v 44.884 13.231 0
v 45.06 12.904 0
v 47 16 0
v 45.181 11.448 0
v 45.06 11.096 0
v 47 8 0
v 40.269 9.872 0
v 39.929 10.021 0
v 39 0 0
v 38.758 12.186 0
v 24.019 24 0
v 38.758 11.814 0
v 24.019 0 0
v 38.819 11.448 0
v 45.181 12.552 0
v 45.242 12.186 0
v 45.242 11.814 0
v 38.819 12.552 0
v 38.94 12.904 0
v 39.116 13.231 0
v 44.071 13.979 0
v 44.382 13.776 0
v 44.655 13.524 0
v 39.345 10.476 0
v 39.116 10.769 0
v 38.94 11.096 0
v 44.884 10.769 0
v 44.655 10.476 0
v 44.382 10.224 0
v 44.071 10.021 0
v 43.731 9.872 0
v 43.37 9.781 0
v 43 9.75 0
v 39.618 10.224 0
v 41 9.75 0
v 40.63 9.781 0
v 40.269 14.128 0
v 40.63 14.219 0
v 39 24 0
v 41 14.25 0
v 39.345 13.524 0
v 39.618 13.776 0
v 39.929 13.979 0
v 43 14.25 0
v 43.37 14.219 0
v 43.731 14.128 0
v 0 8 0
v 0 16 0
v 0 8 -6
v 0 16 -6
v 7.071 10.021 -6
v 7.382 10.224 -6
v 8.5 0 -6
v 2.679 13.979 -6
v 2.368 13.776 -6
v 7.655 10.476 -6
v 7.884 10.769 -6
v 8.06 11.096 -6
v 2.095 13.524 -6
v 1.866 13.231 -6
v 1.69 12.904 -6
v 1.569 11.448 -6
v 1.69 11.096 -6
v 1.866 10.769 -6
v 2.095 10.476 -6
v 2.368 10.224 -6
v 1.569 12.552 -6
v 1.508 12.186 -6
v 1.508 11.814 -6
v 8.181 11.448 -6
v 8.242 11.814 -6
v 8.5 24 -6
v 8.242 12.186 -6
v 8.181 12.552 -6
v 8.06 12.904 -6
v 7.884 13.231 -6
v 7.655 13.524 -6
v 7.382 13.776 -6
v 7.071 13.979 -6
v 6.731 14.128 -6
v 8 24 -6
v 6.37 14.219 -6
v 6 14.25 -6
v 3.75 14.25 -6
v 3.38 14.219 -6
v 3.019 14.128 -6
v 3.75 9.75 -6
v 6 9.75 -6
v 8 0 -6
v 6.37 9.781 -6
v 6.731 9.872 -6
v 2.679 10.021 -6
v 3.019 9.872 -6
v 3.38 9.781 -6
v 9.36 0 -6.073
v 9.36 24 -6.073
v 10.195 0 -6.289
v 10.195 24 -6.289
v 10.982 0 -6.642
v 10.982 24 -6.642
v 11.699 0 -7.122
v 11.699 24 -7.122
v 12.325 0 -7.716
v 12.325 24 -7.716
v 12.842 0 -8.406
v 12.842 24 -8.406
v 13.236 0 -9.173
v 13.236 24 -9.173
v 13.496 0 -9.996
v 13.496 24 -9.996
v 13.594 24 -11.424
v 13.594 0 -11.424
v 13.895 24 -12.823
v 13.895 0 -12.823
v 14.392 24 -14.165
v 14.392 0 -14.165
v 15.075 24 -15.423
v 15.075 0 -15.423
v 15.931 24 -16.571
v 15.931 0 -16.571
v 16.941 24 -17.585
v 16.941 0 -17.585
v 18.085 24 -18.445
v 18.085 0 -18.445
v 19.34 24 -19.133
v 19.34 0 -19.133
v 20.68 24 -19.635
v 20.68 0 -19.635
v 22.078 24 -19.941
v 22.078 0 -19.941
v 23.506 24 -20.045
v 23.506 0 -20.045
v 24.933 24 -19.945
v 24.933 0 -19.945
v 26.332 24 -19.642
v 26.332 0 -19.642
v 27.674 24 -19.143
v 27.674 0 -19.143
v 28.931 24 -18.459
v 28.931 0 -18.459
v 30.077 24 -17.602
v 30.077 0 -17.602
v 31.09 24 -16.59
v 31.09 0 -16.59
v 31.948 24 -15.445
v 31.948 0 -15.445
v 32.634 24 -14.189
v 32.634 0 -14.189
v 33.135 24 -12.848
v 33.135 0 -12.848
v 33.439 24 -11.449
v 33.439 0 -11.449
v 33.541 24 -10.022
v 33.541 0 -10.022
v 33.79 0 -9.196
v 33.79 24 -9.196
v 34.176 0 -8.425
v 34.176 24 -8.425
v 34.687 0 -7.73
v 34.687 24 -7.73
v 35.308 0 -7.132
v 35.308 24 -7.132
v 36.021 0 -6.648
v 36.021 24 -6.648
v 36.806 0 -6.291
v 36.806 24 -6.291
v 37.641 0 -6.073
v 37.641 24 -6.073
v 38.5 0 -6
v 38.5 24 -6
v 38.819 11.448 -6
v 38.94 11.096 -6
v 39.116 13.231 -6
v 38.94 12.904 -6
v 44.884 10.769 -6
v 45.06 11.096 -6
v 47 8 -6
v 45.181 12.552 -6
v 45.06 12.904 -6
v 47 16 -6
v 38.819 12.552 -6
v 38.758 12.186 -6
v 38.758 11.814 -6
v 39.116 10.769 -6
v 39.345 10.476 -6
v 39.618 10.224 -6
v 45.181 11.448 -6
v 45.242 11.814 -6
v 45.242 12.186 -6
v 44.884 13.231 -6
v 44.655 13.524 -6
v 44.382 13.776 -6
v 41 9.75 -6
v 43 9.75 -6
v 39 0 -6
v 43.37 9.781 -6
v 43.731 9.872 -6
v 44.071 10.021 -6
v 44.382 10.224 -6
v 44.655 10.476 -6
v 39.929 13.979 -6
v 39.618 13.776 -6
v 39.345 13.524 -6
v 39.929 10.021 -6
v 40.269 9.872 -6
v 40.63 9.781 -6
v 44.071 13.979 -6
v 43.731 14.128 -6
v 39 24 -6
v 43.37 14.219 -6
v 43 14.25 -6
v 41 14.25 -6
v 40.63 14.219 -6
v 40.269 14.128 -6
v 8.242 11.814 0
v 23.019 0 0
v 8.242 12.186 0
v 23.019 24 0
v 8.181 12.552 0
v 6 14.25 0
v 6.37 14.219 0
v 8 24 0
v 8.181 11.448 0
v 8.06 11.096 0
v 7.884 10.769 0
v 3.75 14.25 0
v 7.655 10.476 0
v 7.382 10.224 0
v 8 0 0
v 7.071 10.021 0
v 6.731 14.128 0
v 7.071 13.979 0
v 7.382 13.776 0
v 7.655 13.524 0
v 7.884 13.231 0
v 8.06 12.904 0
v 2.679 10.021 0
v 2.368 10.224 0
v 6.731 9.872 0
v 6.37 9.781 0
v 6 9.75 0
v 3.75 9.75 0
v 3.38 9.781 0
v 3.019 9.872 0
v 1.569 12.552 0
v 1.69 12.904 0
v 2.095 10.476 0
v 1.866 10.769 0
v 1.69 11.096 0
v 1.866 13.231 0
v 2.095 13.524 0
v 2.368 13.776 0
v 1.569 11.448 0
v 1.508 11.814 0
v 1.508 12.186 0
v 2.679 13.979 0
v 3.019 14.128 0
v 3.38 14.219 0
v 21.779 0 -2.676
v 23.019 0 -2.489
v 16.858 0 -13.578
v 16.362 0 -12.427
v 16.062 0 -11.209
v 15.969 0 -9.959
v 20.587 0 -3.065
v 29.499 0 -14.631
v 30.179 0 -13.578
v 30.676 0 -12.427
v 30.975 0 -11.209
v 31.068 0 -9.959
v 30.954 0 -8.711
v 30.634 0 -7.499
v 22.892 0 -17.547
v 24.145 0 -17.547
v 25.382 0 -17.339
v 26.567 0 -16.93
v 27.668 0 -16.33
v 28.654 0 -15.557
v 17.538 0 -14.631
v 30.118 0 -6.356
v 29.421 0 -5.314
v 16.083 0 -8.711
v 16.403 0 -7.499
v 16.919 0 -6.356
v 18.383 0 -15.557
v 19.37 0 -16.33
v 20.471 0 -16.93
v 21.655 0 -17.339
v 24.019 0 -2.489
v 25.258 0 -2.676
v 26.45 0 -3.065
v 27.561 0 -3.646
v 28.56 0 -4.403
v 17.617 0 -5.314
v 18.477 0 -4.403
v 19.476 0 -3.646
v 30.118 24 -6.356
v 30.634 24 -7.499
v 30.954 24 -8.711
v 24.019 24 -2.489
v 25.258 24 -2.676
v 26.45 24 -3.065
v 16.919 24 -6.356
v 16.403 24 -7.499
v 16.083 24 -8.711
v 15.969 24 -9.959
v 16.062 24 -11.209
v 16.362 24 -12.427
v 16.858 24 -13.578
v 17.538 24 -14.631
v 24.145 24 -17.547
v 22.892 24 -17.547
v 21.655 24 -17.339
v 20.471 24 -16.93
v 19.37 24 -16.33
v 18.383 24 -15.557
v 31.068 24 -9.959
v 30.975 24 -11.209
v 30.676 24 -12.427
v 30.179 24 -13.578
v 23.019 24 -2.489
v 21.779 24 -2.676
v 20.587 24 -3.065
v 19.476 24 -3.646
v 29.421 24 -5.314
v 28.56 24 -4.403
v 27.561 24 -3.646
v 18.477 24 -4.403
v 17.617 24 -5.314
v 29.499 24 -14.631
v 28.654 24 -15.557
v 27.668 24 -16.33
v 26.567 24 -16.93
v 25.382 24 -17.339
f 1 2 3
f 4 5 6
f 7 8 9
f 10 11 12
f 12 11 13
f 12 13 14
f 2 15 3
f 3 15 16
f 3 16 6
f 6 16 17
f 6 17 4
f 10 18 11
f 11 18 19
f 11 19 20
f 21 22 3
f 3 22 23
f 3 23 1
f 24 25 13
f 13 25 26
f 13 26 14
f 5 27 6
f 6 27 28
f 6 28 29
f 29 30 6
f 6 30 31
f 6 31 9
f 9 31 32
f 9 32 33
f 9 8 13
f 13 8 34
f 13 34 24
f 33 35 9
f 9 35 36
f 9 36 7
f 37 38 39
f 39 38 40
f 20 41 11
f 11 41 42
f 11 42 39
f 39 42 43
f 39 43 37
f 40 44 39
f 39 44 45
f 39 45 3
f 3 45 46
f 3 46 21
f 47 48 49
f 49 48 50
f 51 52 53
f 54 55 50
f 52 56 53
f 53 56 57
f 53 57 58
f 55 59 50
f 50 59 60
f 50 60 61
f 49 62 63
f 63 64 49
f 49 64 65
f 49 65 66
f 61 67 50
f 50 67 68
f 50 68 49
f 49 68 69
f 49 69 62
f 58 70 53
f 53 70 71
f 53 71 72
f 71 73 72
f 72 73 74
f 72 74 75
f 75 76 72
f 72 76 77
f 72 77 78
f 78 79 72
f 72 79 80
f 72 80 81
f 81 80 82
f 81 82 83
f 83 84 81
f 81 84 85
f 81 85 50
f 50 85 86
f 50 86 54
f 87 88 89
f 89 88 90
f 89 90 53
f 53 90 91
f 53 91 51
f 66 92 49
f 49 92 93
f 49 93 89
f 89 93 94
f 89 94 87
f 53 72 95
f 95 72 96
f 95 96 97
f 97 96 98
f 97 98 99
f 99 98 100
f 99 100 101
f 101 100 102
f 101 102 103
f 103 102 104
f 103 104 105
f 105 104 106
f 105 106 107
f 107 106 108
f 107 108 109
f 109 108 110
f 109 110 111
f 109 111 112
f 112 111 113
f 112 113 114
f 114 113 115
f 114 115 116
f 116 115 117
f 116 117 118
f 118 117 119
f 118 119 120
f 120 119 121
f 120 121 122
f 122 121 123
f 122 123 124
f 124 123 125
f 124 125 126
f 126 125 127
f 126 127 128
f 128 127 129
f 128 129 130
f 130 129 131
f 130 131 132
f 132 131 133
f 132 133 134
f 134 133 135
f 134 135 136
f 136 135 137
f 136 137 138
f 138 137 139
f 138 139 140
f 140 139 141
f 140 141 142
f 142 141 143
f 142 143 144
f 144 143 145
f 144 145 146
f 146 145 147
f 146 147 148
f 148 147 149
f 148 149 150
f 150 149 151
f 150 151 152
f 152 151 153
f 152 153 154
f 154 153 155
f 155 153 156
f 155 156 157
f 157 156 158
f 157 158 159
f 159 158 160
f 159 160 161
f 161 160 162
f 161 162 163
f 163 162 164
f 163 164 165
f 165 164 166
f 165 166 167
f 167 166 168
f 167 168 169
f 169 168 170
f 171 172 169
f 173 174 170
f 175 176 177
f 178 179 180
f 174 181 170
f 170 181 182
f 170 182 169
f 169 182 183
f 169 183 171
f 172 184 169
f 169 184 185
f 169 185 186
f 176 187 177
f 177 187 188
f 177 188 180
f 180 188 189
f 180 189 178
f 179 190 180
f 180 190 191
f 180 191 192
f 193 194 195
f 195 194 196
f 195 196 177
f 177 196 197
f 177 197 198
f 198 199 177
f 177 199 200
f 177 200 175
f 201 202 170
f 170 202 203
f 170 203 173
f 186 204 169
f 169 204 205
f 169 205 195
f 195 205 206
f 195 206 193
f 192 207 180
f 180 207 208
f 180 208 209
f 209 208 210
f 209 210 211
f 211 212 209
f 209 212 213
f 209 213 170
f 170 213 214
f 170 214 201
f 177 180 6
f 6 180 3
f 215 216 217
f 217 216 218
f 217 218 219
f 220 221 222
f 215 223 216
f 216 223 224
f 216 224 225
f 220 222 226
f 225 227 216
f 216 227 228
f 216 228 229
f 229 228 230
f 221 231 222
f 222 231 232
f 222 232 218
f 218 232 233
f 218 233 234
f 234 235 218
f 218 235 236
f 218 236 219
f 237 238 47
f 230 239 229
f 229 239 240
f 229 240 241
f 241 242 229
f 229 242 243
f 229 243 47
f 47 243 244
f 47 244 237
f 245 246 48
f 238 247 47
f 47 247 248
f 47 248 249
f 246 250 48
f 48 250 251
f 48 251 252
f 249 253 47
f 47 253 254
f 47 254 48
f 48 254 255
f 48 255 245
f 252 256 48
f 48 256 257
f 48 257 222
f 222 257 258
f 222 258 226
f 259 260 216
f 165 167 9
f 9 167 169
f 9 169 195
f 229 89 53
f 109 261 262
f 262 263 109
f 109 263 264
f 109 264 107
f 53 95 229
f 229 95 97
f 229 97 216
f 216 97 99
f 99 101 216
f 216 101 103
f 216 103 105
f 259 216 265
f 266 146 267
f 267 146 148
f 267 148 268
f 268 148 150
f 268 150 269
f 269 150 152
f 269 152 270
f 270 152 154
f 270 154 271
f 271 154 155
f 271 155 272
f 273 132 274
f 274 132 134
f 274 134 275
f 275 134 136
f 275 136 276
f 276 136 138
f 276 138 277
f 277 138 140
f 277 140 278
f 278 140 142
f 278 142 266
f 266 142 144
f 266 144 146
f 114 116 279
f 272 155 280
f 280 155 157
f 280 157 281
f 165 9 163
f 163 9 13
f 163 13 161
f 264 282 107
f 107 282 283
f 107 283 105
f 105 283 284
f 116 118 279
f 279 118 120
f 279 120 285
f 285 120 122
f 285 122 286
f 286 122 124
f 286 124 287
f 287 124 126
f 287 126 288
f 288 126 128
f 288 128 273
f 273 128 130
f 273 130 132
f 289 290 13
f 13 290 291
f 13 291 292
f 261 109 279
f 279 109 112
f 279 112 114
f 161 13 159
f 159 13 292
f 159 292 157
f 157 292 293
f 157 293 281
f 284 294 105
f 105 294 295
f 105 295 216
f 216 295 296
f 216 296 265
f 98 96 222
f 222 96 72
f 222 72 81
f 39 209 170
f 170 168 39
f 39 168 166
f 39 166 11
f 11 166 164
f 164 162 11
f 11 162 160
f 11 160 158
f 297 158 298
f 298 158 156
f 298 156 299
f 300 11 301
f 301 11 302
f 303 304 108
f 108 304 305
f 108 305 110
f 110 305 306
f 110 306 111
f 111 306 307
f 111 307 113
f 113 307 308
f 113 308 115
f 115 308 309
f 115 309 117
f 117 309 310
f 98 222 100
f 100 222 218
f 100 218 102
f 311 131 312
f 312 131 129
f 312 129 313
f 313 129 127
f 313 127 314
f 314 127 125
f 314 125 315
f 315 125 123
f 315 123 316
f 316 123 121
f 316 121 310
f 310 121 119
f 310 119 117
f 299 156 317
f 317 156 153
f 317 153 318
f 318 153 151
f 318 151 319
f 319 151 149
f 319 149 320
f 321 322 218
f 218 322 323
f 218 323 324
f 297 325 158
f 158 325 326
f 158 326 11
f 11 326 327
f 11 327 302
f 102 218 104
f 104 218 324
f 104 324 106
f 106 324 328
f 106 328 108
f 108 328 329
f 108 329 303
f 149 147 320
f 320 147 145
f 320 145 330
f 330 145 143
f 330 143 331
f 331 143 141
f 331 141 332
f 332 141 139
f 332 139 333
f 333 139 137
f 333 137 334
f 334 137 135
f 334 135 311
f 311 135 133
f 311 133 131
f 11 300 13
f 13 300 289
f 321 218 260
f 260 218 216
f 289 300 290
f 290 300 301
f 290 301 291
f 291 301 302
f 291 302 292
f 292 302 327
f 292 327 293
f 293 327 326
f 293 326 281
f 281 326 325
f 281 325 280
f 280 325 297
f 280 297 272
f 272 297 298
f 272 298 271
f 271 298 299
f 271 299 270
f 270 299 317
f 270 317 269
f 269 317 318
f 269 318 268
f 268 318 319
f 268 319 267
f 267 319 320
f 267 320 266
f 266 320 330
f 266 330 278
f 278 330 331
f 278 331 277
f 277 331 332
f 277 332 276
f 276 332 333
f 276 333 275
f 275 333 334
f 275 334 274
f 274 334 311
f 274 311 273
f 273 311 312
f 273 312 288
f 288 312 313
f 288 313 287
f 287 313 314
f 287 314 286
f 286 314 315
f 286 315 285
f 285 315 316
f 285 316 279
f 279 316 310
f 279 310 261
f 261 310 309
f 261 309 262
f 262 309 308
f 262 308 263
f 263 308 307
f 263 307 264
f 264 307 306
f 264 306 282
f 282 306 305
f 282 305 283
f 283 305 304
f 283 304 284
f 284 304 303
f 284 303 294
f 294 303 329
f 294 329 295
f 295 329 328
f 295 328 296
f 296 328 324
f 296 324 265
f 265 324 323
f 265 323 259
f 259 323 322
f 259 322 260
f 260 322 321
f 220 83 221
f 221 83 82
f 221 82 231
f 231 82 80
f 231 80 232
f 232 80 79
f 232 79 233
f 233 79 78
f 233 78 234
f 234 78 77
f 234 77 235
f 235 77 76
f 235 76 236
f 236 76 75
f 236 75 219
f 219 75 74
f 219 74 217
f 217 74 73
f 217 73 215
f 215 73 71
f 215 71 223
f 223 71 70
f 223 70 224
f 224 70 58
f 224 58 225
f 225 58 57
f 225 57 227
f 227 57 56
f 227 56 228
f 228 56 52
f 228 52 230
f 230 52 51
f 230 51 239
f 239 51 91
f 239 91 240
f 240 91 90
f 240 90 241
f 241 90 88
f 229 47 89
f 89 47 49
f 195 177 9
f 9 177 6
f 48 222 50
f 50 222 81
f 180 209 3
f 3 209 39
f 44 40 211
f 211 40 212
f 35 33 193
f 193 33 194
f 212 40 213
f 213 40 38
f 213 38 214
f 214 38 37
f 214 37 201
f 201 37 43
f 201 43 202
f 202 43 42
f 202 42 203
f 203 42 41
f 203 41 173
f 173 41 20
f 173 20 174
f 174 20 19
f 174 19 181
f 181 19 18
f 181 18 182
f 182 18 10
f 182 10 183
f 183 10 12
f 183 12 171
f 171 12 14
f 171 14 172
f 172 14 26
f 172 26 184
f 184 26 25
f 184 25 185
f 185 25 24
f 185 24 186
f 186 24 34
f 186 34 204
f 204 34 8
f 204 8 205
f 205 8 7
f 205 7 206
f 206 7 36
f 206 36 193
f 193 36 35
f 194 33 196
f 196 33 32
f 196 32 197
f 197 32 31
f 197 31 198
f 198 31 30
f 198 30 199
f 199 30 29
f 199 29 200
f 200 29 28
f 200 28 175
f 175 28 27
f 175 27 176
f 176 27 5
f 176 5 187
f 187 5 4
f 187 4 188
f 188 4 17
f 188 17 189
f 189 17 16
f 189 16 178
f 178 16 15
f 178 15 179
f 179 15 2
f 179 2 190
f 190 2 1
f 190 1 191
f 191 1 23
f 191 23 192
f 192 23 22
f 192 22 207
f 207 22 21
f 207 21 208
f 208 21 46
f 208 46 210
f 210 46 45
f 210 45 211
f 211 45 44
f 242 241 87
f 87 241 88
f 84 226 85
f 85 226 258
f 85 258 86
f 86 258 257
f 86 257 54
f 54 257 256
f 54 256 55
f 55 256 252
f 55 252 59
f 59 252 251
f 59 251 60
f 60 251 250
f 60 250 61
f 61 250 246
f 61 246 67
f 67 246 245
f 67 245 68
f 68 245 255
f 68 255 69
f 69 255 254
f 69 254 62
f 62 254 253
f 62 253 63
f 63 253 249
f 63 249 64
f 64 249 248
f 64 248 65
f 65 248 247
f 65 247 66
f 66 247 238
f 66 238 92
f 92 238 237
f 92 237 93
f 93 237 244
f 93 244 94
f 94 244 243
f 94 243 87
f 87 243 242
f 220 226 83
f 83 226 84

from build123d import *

# Parameters (mm, degrees)
BOSS_EXTRUDE1_DEPTH            = 24
CUT_EXTRUDE1_DEPTH             = 25
SKETCH3_W                      = 7.55
SKETCH3_H                      = 24
F_4_5_4_5_DIAMETER_HOLE1_D     = 4.5
F_4_5_4_5_DIAMETER_HOLE1_DEPTH = 6
CHAMFER1_SIZE                  = 8
CUT_EXTRUDE2_DEPTH             = 21.045442769


with BuildPart() as part:
    # Sketch1 → Boss-Extrude1 (new body)
    with BuildSketch(Plane(origin=(0, 24, 0), x_dir=(1, 0, 0), z_dir=(0, 1, 0))):
        with BuildLine():
            Line((0, 0), (47, 0))
            Line((47, 0), (47, 6))
            Line((47, 6), (38.5, 6))
            ThreePointArc((38.5, 6), (35.307693119, 7.131854655), (33.541354656, 10.021831577))
            ThreePointArc((33.541354656, 10.021831577), (23.505747016, 20.045434485), (13.49594739, 9.996059012))
            ThreePointArc((13.49594739, 9.996059012), (11.698748894, 7.121907302), (8.5, 6))
            Line((8.5, 6), (0, 6))
            Line((0, 6), (0, 0))
        make_face()
    extrude(amount=-BOSS_EXTRUDE1_DEPTH)

    # Sketch2 → Cut-Extrude1 (cut, through all)
    with BuildSketch(Plane.XZ):
        with BuildLine():
            Line((24.018633311, 0), (23.018633311, 0))
            Line((23.018633311, 0), (23.018633311, -2.489295869))
            ThreePointArc((23.018633311, -2.489295869), (23.518633311, -2.472721384), (24.018633311, -2.489295869))
            Line((24.018633311, -2.489295869), (24.018633311, 0))
        make_face()
    extrude(amount=-CUT_EXTRUDE1_DEPTH, mode=Mode.SUBTRACT)

    # Sketch3 → Cut-Revolve1 (revolve, cut)
    with BuildSketch(Plane(origin=(0, 0, -10.022721384), x_dir=(-1, 0, 0), z_dir=(0, 0, -1))):
        with Locations((-27.293633311, 12)):
            Rectangle(SKETCH3_W, SKETCH3_H)
    revolve(axis=Axis((23.518633311, 0, -10.022721384), (0, 1, 0)), mode=Mode.SUBTRACT)

    # Ø4.5 (4.5) Diameter Hole1
    with Locations(Plane(origin=(0, 0, -6), x_dir=(-1, 0, 0), z_dir=(0, 0, -1))):
        with Locations((-41.037266621, 12), (-6, 12)):
            Hole(F_4_5_4_5_DIAMETER_HOLE1_D / 2, depth=F_4_5_4_5_DIAMETER_HOLE1_DEPTH)

    # Chamfer1
    chamfer1_edges = [part.edges().sort_by_distance(p)[0] for p in [
        (47, 0, -3),
        (0, 24, -3),
        (0, 0, -3),
        (47, 24, -3),
    ]]
    chamfer(chamfer1_edges, length=CHAMFER1_SIZE)

    # Sketch7 → Cut-Extrude2 (cut, through all)
    with BuildSketch(Plane.XY):
        with BuildLine():
            Line((41, 14.25), (43, 14.25))
            ThreePointArc((43, 14.25), (45.25, 12), (43, 9.75))
            Line((43, 9.75), (41, 9.75))
            ThreePointArc((41, 9.75), (38.75, 12), (41, 14.25))
        make_face()
        with BuildLine():
            Line((6, 9.75), (3.75, 9.75))
            ThreePointArc((3.75, 9.75), (1.5, 12), (3.75, 14.25))
            Line((3.75, 14.25), (6, 14.25))
            ThreePointArc((6, 14.25), (8.25, 12), (6, 9.75))
        make_face()
    extrude(amount=-CUT_EXTRUDE2_DEPTH, mode=Mode.SUBTRACT)


solid = part.part
